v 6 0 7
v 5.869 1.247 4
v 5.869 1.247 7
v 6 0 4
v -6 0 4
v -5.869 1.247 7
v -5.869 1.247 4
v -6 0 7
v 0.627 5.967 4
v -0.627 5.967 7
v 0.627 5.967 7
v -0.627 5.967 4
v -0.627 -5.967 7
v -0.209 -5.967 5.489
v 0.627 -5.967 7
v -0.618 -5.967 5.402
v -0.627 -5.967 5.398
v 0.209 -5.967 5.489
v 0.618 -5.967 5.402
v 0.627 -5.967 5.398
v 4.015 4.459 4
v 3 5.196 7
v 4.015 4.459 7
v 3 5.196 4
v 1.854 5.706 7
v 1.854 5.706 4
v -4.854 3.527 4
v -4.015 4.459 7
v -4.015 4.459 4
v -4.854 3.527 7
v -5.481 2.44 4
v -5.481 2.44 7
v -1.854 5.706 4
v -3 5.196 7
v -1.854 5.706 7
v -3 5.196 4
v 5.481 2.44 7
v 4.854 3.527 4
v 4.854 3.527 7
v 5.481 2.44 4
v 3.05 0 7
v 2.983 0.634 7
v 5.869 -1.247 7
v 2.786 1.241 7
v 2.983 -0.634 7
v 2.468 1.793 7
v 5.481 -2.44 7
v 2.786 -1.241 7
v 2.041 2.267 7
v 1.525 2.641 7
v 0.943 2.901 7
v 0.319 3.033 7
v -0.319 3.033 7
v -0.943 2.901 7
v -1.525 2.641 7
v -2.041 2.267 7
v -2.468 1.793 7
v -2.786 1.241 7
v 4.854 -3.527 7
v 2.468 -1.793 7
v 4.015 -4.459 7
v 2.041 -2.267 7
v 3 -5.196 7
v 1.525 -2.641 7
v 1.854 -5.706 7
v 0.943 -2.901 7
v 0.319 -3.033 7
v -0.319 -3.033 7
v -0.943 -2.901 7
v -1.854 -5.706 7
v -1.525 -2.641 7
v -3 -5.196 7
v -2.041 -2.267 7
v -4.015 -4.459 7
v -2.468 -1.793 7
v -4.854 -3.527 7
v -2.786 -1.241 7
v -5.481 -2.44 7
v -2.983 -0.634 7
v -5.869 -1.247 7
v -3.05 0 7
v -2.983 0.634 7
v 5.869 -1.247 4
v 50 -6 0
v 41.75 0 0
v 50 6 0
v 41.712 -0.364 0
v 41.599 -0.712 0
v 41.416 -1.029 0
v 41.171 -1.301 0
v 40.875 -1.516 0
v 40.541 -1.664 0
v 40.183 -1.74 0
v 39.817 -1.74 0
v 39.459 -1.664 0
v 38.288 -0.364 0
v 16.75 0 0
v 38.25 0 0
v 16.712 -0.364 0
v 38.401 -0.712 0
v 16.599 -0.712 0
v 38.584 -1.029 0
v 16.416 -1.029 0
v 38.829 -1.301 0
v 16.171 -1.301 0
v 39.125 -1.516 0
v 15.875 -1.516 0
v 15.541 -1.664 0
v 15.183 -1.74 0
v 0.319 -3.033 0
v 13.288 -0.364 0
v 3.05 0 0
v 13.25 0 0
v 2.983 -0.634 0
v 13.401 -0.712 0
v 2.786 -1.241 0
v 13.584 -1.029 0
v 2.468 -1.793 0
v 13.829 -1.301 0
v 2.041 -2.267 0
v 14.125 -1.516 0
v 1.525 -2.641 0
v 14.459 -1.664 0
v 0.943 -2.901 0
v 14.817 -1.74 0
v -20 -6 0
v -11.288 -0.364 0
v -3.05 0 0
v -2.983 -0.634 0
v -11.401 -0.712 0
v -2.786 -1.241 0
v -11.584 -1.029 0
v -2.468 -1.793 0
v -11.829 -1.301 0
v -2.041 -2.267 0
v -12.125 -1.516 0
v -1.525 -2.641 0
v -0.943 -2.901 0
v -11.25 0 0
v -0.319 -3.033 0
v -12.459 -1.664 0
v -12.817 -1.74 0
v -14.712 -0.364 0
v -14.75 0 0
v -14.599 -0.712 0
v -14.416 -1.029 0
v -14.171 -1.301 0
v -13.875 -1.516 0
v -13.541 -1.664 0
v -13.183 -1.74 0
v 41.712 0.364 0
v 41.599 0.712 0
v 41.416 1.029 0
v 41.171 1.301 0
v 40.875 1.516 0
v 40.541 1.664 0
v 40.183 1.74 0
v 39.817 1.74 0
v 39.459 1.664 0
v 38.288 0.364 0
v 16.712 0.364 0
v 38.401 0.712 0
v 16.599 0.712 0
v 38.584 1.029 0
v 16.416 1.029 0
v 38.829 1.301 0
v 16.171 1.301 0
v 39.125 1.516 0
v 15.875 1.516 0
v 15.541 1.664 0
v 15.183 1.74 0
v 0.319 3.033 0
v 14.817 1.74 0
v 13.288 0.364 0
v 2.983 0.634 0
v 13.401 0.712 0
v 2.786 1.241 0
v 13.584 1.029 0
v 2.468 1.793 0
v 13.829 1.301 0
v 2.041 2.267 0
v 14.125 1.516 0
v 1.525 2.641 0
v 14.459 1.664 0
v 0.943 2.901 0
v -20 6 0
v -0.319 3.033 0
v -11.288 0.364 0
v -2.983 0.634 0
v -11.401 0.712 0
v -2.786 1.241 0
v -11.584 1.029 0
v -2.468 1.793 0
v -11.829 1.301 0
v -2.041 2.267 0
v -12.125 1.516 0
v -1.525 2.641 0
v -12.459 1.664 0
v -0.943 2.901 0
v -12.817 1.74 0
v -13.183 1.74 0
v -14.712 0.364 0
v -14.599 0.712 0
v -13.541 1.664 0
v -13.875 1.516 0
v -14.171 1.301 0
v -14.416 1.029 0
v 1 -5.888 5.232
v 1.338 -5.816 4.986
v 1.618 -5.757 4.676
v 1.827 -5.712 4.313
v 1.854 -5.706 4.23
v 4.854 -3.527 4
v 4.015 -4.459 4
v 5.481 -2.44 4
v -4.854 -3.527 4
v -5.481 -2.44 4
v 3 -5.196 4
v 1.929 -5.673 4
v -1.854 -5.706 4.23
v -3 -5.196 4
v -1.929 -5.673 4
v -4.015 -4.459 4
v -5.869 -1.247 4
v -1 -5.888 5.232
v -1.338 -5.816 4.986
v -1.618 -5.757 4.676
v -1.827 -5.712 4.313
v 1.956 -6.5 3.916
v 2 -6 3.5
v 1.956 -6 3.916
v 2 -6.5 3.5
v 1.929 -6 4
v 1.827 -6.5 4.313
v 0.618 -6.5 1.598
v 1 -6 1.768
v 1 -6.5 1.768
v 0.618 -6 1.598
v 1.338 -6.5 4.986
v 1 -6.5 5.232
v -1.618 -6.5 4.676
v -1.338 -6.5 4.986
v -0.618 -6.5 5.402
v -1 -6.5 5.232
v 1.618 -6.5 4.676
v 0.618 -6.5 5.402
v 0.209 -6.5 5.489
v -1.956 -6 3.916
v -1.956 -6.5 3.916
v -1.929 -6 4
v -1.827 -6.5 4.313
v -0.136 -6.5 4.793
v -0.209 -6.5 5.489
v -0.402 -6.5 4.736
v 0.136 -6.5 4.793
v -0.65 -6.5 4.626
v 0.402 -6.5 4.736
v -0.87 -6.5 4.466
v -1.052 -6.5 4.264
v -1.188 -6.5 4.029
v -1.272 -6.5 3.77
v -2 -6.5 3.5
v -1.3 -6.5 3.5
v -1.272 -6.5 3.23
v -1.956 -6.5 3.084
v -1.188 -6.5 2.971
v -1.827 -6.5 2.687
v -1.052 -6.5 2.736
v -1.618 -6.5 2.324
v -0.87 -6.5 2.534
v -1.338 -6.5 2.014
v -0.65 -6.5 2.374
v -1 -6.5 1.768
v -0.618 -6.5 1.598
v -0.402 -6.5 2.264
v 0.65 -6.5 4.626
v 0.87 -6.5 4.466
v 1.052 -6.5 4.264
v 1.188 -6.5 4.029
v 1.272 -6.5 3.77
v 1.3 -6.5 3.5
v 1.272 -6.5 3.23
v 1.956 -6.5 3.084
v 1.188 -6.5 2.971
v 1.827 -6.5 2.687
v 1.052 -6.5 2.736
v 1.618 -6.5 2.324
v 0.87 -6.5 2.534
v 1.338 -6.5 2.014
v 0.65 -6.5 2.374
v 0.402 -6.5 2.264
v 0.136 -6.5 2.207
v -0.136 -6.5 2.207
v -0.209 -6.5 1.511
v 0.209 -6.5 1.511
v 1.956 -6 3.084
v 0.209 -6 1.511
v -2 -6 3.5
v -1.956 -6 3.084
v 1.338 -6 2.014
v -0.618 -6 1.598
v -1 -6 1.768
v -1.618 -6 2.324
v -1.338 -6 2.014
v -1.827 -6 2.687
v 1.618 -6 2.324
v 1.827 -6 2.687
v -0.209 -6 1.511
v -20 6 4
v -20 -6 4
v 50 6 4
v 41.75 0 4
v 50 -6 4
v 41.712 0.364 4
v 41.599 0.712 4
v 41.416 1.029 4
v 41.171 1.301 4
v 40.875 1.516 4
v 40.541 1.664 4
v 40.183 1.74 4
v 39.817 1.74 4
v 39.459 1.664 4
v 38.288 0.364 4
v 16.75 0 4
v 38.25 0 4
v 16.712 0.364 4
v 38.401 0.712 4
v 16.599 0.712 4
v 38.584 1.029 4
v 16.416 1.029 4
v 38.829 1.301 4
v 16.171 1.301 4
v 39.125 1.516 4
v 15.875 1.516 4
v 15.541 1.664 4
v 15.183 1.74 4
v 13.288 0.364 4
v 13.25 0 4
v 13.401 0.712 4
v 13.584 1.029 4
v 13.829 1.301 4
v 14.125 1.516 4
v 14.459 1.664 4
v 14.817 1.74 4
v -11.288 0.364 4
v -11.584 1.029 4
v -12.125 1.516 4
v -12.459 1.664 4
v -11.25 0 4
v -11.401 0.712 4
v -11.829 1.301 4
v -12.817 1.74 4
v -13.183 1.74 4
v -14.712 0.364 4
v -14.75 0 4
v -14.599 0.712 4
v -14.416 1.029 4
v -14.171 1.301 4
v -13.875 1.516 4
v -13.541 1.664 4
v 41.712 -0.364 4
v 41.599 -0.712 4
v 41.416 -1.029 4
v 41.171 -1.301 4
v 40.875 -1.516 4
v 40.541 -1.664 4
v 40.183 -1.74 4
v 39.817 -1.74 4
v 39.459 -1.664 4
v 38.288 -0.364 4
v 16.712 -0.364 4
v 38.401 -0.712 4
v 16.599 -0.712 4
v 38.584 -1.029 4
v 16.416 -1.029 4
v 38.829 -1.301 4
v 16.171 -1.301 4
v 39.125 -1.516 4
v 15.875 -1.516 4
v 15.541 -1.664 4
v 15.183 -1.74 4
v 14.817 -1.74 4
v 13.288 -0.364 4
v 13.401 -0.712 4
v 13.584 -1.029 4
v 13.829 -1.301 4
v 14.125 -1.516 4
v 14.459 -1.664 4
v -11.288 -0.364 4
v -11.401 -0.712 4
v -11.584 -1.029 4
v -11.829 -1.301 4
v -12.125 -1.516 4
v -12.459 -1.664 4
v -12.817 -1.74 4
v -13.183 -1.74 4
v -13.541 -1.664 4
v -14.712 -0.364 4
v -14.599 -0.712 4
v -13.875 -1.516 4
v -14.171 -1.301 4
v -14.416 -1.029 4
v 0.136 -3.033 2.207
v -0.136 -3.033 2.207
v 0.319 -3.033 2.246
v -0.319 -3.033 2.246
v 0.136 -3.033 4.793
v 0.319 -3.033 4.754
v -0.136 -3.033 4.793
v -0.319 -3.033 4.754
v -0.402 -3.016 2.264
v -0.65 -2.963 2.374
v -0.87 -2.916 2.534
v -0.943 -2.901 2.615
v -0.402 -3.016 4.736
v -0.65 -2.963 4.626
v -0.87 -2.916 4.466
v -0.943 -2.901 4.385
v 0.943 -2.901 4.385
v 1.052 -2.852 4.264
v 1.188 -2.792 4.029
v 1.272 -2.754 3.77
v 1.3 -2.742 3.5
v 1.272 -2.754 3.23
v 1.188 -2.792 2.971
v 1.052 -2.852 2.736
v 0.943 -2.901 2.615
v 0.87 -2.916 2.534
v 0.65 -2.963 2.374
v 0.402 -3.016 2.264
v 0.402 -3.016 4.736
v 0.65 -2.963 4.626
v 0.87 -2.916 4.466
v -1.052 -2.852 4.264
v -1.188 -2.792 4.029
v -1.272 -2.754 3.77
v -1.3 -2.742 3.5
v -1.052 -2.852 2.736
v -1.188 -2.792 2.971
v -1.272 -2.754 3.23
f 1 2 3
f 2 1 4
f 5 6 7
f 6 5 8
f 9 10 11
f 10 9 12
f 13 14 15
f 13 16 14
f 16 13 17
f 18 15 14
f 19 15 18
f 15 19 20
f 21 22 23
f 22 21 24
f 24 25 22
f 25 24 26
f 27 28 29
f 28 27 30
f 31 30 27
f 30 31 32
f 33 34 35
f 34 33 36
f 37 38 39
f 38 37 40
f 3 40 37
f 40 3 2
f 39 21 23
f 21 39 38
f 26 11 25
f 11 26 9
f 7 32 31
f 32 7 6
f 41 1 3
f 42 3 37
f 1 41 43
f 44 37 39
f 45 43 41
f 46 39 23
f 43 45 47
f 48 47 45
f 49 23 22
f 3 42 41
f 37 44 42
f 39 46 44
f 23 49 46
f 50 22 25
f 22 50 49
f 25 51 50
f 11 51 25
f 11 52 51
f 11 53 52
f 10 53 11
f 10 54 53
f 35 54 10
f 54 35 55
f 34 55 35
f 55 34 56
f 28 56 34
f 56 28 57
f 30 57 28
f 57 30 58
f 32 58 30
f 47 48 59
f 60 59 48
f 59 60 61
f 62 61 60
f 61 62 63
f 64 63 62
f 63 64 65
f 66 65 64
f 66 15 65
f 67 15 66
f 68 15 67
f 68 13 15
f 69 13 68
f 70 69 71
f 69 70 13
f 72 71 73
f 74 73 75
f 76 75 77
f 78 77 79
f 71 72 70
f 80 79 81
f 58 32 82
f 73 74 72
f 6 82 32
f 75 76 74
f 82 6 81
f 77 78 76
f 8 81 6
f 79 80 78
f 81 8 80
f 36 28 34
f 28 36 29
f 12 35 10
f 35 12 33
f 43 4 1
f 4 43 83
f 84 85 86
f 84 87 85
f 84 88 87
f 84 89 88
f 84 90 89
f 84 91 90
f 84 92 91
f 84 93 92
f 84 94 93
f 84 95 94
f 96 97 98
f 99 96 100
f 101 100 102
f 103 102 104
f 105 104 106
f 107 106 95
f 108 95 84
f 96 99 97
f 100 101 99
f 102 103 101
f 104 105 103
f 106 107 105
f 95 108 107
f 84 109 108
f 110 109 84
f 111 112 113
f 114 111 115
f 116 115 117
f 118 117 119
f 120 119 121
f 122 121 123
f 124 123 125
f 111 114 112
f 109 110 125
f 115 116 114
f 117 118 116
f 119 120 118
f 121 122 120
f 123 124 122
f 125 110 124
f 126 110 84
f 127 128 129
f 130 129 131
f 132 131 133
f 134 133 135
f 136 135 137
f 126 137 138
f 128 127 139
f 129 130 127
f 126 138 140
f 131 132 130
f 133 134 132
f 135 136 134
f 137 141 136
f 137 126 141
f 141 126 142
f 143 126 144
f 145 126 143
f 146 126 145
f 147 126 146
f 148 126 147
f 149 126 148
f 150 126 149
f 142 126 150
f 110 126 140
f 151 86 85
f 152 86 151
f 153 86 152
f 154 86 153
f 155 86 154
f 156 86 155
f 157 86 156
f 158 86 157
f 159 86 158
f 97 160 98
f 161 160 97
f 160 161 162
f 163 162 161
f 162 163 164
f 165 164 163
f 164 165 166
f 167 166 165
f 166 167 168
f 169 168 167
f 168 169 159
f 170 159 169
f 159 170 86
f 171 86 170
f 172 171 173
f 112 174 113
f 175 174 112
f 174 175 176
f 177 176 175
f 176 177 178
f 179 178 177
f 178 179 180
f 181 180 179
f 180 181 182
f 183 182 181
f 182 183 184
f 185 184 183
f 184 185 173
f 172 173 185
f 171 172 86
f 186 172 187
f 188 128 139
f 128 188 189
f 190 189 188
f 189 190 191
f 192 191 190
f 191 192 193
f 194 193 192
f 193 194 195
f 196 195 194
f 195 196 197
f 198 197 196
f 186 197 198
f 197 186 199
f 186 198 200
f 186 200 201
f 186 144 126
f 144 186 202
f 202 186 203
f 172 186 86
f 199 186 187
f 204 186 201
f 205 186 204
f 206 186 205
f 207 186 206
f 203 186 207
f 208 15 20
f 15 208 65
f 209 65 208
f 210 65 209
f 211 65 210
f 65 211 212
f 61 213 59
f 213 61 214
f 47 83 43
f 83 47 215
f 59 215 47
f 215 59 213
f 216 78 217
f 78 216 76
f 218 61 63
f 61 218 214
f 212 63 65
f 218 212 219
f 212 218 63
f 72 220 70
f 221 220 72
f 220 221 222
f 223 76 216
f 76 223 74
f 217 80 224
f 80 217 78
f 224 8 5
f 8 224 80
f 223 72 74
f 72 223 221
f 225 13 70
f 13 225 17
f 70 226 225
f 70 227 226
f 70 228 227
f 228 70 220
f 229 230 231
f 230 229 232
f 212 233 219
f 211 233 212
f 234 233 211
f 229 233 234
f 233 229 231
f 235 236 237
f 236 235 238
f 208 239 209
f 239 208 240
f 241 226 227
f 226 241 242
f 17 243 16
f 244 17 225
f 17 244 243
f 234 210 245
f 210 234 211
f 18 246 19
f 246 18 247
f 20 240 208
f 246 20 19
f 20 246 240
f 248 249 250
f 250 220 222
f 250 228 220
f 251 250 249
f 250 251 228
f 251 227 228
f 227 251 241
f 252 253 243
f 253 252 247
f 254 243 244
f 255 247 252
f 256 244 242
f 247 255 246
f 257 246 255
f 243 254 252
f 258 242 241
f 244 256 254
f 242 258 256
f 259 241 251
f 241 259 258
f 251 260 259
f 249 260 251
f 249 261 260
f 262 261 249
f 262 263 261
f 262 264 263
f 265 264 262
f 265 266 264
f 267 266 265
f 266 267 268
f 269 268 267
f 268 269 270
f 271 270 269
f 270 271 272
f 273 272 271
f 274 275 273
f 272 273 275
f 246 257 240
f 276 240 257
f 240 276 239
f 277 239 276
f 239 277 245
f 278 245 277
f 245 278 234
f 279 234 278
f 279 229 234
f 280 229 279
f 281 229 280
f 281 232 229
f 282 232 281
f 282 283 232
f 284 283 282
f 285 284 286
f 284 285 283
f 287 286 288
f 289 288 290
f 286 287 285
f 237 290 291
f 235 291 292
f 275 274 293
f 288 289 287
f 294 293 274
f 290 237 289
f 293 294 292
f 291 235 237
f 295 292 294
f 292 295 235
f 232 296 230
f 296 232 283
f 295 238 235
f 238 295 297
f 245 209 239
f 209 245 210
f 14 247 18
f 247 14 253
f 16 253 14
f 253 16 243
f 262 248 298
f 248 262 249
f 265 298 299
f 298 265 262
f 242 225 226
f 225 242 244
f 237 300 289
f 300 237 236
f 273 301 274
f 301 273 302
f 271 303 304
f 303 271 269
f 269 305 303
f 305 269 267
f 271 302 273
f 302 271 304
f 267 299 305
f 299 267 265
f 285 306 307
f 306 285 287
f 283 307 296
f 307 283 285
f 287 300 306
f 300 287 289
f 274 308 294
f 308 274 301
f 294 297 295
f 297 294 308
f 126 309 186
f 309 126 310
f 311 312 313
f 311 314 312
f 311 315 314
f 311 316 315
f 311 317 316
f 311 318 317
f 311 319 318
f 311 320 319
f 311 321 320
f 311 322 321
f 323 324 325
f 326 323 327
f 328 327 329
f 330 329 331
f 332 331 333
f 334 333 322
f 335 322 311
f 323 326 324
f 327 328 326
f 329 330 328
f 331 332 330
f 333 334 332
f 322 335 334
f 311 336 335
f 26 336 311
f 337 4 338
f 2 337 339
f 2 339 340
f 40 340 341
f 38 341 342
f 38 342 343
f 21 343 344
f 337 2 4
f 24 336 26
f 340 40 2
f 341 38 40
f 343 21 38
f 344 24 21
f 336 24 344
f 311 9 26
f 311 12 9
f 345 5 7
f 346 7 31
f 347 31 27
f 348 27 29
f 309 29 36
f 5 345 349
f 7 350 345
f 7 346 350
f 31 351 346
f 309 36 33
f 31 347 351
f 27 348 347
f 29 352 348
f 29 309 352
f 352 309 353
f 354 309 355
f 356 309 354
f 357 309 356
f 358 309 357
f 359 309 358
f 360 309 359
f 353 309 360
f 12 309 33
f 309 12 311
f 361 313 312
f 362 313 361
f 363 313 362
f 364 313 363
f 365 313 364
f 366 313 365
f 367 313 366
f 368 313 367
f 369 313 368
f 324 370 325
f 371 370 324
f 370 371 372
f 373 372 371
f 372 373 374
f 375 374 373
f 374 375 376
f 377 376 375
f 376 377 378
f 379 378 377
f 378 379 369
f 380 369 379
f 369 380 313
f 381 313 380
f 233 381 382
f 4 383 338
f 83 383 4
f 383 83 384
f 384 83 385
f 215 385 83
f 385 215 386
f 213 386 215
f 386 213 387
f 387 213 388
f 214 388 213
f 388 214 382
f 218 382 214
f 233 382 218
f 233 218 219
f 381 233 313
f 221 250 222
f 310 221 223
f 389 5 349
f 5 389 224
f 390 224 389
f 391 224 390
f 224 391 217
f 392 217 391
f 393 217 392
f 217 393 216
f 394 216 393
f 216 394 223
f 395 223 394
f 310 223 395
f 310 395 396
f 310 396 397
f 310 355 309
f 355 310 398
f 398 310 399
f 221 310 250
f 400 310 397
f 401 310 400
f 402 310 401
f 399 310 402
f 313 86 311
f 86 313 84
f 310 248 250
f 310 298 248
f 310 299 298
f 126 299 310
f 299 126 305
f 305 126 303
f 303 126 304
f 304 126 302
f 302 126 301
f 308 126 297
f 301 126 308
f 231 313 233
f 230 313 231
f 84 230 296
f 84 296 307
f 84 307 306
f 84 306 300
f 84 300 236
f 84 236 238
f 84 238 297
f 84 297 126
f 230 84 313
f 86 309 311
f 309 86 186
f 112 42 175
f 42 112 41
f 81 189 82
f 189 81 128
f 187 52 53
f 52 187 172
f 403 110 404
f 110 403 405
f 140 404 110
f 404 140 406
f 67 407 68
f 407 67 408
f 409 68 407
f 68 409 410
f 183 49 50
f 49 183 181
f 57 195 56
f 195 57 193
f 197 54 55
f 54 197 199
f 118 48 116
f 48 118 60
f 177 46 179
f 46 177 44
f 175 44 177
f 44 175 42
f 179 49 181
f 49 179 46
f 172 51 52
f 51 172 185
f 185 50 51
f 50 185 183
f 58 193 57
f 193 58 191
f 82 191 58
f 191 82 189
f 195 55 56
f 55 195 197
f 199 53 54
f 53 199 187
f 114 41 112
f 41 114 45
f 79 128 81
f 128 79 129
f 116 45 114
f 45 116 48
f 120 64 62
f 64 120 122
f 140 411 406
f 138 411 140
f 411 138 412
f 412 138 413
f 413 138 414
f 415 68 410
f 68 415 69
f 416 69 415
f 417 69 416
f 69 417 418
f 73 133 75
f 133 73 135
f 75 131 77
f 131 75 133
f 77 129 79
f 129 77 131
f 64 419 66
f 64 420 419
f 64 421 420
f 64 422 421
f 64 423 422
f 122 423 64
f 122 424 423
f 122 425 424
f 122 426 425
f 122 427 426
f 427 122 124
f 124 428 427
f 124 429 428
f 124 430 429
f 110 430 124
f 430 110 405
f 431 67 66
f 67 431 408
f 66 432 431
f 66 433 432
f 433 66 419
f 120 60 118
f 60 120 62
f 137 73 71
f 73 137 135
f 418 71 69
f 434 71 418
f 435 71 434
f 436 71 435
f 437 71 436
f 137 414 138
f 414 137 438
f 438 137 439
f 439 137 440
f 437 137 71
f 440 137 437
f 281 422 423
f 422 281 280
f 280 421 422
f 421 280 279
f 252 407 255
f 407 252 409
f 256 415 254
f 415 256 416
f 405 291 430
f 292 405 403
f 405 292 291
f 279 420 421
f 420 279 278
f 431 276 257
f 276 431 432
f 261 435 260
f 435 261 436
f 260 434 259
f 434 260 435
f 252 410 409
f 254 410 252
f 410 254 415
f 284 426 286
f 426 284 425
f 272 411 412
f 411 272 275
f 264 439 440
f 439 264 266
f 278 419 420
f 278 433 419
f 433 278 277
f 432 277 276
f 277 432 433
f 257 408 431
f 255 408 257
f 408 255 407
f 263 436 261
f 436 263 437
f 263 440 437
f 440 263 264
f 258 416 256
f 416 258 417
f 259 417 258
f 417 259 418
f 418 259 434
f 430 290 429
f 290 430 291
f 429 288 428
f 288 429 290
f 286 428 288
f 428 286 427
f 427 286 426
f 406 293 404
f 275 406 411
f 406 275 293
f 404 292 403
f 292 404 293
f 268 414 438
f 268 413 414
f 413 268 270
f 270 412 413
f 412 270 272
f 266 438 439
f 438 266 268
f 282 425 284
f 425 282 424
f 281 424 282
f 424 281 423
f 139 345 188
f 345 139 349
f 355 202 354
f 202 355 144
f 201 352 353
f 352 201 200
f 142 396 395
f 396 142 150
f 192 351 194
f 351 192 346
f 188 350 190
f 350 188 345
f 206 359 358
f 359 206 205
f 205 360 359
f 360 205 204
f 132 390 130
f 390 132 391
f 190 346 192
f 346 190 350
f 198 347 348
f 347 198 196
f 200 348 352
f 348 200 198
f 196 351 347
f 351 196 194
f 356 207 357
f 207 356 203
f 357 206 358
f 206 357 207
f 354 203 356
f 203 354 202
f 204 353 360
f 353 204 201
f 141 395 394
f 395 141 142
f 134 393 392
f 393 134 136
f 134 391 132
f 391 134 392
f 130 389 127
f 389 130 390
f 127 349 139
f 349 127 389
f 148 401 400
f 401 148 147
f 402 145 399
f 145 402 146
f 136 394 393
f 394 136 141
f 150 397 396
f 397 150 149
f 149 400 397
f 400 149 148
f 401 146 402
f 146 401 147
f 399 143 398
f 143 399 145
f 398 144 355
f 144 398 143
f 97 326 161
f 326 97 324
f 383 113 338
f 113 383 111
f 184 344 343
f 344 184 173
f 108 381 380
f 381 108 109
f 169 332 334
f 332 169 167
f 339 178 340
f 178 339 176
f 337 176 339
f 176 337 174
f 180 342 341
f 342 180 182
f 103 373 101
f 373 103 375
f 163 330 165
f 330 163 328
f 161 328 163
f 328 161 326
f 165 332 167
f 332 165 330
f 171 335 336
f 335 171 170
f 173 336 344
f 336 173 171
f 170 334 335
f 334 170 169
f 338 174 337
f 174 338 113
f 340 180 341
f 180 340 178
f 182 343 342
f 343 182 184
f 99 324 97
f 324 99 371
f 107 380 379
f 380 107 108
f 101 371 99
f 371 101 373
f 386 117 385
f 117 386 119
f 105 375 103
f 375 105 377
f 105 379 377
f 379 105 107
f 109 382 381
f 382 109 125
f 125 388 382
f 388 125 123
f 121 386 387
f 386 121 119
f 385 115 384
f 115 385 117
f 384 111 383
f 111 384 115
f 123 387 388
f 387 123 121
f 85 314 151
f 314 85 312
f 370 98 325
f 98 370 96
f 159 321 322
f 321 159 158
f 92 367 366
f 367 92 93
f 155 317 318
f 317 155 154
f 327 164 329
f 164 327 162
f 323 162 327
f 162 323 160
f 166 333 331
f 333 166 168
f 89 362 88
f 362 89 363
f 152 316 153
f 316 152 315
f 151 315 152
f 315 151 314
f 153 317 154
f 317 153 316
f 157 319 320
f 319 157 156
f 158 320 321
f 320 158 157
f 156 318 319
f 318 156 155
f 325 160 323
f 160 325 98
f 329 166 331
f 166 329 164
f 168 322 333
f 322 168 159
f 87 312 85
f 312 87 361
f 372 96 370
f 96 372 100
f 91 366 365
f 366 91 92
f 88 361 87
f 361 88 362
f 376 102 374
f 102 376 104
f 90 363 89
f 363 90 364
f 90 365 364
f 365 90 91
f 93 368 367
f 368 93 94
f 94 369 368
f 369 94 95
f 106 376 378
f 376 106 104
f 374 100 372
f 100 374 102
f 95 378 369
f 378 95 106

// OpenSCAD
$fn = 30;
THICK = 7;

rod_attachment_holder();


module rod_attachment_holder(){
    difference(){
        union(){
            cylinder(h=THICK,d=12);
            translate([0,-3,THICK/2]) rotate([90,0,0]) cylinder(h=3.5,d=4);
            
            // Pole holder
            translate([-20,-6,0]) cube([70,12,4]);
        }
        
        translate([0,0,-0.1]) cylinder(h=THICK+1,d=6.1);
        
        // Tightening screw
        translate([0,0,THICK/2]) rotate([90,0,0]) cylinder(h=10,d=2.6);
        
        // Pole attachment screws
        translate([-13,0,-0.1]) cylinder(h=THICK+1,d=3.5);
        translate([15,0,-0.1]) cylinder(h=THICK+1,d=3.5);
        translate([40,0,-0.1]) cylinder(h=THICK+1,d=3.5);
    }
}
